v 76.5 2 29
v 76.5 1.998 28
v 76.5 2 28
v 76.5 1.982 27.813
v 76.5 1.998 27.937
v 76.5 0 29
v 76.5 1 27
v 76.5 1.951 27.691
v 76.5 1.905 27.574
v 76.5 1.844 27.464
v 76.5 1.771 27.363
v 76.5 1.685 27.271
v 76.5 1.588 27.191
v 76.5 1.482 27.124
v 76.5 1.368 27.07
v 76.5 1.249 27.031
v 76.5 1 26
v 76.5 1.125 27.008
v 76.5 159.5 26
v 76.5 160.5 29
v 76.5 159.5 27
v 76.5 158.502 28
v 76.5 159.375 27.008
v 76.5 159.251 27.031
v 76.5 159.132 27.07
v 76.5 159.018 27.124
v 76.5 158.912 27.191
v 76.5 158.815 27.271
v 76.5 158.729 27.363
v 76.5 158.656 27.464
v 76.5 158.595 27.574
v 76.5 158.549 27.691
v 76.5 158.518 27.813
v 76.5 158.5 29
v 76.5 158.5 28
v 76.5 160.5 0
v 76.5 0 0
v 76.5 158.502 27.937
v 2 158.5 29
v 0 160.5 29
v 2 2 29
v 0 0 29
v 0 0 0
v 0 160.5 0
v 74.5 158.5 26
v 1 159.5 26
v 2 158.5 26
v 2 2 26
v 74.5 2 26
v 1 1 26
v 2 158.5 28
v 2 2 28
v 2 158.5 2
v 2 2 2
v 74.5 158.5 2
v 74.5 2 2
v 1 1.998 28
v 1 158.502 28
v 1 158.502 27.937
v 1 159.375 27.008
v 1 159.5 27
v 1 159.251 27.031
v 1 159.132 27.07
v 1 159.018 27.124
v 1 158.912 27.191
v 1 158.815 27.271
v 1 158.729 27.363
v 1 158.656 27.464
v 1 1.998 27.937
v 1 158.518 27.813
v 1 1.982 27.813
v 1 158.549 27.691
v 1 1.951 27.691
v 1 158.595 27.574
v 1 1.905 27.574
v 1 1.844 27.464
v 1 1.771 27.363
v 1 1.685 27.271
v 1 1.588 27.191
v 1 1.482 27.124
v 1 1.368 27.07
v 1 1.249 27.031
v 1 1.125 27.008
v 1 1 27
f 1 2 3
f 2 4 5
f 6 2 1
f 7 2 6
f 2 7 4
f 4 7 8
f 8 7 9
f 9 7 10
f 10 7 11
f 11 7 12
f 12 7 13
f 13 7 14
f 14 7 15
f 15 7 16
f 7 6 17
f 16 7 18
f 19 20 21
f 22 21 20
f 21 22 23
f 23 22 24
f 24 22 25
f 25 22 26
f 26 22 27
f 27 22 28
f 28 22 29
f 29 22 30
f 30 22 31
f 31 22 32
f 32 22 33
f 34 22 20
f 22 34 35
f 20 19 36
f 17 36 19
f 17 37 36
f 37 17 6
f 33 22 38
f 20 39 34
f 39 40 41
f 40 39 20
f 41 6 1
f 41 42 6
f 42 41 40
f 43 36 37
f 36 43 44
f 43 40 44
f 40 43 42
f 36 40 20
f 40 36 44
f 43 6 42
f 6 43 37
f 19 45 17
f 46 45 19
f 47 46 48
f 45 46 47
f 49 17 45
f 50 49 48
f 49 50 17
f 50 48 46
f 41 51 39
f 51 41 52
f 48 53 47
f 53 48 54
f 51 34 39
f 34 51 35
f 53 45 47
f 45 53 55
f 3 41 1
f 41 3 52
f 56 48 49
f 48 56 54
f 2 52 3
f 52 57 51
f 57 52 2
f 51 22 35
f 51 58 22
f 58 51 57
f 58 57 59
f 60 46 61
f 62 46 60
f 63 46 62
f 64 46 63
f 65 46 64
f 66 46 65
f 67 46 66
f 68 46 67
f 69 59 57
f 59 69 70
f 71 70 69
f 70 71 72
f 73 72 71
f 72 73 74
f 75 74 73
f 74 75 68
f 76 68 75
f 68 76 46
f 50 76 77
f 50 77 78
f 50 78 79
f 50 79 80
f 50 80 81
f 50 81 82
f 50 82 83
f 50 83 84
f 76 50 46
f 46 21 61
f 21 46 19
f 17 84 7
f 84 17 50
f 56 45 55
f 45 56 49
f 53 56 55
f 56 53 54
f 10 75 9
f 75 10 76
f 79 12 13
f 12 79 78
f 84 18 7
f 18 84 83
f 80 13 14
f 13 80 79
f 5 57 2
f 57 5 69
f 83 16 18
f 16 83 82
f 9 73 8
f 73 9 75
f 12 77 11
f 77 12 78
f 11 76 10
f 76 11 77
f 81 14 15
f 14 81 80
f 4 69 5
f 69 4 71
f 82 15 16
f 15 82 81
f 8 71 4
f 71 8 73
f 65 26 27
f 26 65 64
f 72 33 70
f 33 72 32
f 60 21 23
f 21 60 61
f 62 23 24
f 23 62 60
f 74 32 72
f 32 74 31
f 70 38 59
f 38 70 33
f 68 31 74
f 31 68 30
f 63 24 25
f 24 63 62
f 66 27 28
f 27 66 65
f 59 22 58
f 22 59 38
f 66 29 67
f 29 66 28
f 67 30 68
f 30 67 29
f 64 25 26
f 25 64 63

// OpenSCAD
DIM = [
	76.5, // Spielerinnenablage richtung
	160.5, // Links-Rechts
	29
];

WALL  = 2;
FLOOR = 2;
LID   = 3;



union(){
	difference(){
		cube(DIM);
	
		// Lid Opening
		translate([ WALL , WALL , DIM.z-LID ]) cube([ DIM.x-WALL+0.1 , DIM.y-2*WALL , LID+0.1 ]);
		translate([ WALL-1 , WALL-1 , DIM.z-LID ]) cube([ DIM.x-1+0.1 , DIM.y-2 , 2 ]);
		
		// Storage
		translate([ WALL , WALL , FLOOR ]) cube([ DIM.x-2*WALL , DIM.y-2*WALL , DIM.z ]);
	
	}
	
	// Lid Opening Thingies
	translate([ 0 , 1 , DIM.z-1 ]) rotate([0,90,0]) cylinder(DIM.x,r=1,$fn=50);
	translate([ 0 , DIM.y-1 , DIM.z-1 ]) rotate([0,90,0]) cylinder(DIM.x,r=1,$fn=50);
	
	//translate([ 1 , 1 , OUT_Z-1 ]) rotate([-90,0,0]) cylinder(OUT_Y-1,r=1,$fn=50);
}
